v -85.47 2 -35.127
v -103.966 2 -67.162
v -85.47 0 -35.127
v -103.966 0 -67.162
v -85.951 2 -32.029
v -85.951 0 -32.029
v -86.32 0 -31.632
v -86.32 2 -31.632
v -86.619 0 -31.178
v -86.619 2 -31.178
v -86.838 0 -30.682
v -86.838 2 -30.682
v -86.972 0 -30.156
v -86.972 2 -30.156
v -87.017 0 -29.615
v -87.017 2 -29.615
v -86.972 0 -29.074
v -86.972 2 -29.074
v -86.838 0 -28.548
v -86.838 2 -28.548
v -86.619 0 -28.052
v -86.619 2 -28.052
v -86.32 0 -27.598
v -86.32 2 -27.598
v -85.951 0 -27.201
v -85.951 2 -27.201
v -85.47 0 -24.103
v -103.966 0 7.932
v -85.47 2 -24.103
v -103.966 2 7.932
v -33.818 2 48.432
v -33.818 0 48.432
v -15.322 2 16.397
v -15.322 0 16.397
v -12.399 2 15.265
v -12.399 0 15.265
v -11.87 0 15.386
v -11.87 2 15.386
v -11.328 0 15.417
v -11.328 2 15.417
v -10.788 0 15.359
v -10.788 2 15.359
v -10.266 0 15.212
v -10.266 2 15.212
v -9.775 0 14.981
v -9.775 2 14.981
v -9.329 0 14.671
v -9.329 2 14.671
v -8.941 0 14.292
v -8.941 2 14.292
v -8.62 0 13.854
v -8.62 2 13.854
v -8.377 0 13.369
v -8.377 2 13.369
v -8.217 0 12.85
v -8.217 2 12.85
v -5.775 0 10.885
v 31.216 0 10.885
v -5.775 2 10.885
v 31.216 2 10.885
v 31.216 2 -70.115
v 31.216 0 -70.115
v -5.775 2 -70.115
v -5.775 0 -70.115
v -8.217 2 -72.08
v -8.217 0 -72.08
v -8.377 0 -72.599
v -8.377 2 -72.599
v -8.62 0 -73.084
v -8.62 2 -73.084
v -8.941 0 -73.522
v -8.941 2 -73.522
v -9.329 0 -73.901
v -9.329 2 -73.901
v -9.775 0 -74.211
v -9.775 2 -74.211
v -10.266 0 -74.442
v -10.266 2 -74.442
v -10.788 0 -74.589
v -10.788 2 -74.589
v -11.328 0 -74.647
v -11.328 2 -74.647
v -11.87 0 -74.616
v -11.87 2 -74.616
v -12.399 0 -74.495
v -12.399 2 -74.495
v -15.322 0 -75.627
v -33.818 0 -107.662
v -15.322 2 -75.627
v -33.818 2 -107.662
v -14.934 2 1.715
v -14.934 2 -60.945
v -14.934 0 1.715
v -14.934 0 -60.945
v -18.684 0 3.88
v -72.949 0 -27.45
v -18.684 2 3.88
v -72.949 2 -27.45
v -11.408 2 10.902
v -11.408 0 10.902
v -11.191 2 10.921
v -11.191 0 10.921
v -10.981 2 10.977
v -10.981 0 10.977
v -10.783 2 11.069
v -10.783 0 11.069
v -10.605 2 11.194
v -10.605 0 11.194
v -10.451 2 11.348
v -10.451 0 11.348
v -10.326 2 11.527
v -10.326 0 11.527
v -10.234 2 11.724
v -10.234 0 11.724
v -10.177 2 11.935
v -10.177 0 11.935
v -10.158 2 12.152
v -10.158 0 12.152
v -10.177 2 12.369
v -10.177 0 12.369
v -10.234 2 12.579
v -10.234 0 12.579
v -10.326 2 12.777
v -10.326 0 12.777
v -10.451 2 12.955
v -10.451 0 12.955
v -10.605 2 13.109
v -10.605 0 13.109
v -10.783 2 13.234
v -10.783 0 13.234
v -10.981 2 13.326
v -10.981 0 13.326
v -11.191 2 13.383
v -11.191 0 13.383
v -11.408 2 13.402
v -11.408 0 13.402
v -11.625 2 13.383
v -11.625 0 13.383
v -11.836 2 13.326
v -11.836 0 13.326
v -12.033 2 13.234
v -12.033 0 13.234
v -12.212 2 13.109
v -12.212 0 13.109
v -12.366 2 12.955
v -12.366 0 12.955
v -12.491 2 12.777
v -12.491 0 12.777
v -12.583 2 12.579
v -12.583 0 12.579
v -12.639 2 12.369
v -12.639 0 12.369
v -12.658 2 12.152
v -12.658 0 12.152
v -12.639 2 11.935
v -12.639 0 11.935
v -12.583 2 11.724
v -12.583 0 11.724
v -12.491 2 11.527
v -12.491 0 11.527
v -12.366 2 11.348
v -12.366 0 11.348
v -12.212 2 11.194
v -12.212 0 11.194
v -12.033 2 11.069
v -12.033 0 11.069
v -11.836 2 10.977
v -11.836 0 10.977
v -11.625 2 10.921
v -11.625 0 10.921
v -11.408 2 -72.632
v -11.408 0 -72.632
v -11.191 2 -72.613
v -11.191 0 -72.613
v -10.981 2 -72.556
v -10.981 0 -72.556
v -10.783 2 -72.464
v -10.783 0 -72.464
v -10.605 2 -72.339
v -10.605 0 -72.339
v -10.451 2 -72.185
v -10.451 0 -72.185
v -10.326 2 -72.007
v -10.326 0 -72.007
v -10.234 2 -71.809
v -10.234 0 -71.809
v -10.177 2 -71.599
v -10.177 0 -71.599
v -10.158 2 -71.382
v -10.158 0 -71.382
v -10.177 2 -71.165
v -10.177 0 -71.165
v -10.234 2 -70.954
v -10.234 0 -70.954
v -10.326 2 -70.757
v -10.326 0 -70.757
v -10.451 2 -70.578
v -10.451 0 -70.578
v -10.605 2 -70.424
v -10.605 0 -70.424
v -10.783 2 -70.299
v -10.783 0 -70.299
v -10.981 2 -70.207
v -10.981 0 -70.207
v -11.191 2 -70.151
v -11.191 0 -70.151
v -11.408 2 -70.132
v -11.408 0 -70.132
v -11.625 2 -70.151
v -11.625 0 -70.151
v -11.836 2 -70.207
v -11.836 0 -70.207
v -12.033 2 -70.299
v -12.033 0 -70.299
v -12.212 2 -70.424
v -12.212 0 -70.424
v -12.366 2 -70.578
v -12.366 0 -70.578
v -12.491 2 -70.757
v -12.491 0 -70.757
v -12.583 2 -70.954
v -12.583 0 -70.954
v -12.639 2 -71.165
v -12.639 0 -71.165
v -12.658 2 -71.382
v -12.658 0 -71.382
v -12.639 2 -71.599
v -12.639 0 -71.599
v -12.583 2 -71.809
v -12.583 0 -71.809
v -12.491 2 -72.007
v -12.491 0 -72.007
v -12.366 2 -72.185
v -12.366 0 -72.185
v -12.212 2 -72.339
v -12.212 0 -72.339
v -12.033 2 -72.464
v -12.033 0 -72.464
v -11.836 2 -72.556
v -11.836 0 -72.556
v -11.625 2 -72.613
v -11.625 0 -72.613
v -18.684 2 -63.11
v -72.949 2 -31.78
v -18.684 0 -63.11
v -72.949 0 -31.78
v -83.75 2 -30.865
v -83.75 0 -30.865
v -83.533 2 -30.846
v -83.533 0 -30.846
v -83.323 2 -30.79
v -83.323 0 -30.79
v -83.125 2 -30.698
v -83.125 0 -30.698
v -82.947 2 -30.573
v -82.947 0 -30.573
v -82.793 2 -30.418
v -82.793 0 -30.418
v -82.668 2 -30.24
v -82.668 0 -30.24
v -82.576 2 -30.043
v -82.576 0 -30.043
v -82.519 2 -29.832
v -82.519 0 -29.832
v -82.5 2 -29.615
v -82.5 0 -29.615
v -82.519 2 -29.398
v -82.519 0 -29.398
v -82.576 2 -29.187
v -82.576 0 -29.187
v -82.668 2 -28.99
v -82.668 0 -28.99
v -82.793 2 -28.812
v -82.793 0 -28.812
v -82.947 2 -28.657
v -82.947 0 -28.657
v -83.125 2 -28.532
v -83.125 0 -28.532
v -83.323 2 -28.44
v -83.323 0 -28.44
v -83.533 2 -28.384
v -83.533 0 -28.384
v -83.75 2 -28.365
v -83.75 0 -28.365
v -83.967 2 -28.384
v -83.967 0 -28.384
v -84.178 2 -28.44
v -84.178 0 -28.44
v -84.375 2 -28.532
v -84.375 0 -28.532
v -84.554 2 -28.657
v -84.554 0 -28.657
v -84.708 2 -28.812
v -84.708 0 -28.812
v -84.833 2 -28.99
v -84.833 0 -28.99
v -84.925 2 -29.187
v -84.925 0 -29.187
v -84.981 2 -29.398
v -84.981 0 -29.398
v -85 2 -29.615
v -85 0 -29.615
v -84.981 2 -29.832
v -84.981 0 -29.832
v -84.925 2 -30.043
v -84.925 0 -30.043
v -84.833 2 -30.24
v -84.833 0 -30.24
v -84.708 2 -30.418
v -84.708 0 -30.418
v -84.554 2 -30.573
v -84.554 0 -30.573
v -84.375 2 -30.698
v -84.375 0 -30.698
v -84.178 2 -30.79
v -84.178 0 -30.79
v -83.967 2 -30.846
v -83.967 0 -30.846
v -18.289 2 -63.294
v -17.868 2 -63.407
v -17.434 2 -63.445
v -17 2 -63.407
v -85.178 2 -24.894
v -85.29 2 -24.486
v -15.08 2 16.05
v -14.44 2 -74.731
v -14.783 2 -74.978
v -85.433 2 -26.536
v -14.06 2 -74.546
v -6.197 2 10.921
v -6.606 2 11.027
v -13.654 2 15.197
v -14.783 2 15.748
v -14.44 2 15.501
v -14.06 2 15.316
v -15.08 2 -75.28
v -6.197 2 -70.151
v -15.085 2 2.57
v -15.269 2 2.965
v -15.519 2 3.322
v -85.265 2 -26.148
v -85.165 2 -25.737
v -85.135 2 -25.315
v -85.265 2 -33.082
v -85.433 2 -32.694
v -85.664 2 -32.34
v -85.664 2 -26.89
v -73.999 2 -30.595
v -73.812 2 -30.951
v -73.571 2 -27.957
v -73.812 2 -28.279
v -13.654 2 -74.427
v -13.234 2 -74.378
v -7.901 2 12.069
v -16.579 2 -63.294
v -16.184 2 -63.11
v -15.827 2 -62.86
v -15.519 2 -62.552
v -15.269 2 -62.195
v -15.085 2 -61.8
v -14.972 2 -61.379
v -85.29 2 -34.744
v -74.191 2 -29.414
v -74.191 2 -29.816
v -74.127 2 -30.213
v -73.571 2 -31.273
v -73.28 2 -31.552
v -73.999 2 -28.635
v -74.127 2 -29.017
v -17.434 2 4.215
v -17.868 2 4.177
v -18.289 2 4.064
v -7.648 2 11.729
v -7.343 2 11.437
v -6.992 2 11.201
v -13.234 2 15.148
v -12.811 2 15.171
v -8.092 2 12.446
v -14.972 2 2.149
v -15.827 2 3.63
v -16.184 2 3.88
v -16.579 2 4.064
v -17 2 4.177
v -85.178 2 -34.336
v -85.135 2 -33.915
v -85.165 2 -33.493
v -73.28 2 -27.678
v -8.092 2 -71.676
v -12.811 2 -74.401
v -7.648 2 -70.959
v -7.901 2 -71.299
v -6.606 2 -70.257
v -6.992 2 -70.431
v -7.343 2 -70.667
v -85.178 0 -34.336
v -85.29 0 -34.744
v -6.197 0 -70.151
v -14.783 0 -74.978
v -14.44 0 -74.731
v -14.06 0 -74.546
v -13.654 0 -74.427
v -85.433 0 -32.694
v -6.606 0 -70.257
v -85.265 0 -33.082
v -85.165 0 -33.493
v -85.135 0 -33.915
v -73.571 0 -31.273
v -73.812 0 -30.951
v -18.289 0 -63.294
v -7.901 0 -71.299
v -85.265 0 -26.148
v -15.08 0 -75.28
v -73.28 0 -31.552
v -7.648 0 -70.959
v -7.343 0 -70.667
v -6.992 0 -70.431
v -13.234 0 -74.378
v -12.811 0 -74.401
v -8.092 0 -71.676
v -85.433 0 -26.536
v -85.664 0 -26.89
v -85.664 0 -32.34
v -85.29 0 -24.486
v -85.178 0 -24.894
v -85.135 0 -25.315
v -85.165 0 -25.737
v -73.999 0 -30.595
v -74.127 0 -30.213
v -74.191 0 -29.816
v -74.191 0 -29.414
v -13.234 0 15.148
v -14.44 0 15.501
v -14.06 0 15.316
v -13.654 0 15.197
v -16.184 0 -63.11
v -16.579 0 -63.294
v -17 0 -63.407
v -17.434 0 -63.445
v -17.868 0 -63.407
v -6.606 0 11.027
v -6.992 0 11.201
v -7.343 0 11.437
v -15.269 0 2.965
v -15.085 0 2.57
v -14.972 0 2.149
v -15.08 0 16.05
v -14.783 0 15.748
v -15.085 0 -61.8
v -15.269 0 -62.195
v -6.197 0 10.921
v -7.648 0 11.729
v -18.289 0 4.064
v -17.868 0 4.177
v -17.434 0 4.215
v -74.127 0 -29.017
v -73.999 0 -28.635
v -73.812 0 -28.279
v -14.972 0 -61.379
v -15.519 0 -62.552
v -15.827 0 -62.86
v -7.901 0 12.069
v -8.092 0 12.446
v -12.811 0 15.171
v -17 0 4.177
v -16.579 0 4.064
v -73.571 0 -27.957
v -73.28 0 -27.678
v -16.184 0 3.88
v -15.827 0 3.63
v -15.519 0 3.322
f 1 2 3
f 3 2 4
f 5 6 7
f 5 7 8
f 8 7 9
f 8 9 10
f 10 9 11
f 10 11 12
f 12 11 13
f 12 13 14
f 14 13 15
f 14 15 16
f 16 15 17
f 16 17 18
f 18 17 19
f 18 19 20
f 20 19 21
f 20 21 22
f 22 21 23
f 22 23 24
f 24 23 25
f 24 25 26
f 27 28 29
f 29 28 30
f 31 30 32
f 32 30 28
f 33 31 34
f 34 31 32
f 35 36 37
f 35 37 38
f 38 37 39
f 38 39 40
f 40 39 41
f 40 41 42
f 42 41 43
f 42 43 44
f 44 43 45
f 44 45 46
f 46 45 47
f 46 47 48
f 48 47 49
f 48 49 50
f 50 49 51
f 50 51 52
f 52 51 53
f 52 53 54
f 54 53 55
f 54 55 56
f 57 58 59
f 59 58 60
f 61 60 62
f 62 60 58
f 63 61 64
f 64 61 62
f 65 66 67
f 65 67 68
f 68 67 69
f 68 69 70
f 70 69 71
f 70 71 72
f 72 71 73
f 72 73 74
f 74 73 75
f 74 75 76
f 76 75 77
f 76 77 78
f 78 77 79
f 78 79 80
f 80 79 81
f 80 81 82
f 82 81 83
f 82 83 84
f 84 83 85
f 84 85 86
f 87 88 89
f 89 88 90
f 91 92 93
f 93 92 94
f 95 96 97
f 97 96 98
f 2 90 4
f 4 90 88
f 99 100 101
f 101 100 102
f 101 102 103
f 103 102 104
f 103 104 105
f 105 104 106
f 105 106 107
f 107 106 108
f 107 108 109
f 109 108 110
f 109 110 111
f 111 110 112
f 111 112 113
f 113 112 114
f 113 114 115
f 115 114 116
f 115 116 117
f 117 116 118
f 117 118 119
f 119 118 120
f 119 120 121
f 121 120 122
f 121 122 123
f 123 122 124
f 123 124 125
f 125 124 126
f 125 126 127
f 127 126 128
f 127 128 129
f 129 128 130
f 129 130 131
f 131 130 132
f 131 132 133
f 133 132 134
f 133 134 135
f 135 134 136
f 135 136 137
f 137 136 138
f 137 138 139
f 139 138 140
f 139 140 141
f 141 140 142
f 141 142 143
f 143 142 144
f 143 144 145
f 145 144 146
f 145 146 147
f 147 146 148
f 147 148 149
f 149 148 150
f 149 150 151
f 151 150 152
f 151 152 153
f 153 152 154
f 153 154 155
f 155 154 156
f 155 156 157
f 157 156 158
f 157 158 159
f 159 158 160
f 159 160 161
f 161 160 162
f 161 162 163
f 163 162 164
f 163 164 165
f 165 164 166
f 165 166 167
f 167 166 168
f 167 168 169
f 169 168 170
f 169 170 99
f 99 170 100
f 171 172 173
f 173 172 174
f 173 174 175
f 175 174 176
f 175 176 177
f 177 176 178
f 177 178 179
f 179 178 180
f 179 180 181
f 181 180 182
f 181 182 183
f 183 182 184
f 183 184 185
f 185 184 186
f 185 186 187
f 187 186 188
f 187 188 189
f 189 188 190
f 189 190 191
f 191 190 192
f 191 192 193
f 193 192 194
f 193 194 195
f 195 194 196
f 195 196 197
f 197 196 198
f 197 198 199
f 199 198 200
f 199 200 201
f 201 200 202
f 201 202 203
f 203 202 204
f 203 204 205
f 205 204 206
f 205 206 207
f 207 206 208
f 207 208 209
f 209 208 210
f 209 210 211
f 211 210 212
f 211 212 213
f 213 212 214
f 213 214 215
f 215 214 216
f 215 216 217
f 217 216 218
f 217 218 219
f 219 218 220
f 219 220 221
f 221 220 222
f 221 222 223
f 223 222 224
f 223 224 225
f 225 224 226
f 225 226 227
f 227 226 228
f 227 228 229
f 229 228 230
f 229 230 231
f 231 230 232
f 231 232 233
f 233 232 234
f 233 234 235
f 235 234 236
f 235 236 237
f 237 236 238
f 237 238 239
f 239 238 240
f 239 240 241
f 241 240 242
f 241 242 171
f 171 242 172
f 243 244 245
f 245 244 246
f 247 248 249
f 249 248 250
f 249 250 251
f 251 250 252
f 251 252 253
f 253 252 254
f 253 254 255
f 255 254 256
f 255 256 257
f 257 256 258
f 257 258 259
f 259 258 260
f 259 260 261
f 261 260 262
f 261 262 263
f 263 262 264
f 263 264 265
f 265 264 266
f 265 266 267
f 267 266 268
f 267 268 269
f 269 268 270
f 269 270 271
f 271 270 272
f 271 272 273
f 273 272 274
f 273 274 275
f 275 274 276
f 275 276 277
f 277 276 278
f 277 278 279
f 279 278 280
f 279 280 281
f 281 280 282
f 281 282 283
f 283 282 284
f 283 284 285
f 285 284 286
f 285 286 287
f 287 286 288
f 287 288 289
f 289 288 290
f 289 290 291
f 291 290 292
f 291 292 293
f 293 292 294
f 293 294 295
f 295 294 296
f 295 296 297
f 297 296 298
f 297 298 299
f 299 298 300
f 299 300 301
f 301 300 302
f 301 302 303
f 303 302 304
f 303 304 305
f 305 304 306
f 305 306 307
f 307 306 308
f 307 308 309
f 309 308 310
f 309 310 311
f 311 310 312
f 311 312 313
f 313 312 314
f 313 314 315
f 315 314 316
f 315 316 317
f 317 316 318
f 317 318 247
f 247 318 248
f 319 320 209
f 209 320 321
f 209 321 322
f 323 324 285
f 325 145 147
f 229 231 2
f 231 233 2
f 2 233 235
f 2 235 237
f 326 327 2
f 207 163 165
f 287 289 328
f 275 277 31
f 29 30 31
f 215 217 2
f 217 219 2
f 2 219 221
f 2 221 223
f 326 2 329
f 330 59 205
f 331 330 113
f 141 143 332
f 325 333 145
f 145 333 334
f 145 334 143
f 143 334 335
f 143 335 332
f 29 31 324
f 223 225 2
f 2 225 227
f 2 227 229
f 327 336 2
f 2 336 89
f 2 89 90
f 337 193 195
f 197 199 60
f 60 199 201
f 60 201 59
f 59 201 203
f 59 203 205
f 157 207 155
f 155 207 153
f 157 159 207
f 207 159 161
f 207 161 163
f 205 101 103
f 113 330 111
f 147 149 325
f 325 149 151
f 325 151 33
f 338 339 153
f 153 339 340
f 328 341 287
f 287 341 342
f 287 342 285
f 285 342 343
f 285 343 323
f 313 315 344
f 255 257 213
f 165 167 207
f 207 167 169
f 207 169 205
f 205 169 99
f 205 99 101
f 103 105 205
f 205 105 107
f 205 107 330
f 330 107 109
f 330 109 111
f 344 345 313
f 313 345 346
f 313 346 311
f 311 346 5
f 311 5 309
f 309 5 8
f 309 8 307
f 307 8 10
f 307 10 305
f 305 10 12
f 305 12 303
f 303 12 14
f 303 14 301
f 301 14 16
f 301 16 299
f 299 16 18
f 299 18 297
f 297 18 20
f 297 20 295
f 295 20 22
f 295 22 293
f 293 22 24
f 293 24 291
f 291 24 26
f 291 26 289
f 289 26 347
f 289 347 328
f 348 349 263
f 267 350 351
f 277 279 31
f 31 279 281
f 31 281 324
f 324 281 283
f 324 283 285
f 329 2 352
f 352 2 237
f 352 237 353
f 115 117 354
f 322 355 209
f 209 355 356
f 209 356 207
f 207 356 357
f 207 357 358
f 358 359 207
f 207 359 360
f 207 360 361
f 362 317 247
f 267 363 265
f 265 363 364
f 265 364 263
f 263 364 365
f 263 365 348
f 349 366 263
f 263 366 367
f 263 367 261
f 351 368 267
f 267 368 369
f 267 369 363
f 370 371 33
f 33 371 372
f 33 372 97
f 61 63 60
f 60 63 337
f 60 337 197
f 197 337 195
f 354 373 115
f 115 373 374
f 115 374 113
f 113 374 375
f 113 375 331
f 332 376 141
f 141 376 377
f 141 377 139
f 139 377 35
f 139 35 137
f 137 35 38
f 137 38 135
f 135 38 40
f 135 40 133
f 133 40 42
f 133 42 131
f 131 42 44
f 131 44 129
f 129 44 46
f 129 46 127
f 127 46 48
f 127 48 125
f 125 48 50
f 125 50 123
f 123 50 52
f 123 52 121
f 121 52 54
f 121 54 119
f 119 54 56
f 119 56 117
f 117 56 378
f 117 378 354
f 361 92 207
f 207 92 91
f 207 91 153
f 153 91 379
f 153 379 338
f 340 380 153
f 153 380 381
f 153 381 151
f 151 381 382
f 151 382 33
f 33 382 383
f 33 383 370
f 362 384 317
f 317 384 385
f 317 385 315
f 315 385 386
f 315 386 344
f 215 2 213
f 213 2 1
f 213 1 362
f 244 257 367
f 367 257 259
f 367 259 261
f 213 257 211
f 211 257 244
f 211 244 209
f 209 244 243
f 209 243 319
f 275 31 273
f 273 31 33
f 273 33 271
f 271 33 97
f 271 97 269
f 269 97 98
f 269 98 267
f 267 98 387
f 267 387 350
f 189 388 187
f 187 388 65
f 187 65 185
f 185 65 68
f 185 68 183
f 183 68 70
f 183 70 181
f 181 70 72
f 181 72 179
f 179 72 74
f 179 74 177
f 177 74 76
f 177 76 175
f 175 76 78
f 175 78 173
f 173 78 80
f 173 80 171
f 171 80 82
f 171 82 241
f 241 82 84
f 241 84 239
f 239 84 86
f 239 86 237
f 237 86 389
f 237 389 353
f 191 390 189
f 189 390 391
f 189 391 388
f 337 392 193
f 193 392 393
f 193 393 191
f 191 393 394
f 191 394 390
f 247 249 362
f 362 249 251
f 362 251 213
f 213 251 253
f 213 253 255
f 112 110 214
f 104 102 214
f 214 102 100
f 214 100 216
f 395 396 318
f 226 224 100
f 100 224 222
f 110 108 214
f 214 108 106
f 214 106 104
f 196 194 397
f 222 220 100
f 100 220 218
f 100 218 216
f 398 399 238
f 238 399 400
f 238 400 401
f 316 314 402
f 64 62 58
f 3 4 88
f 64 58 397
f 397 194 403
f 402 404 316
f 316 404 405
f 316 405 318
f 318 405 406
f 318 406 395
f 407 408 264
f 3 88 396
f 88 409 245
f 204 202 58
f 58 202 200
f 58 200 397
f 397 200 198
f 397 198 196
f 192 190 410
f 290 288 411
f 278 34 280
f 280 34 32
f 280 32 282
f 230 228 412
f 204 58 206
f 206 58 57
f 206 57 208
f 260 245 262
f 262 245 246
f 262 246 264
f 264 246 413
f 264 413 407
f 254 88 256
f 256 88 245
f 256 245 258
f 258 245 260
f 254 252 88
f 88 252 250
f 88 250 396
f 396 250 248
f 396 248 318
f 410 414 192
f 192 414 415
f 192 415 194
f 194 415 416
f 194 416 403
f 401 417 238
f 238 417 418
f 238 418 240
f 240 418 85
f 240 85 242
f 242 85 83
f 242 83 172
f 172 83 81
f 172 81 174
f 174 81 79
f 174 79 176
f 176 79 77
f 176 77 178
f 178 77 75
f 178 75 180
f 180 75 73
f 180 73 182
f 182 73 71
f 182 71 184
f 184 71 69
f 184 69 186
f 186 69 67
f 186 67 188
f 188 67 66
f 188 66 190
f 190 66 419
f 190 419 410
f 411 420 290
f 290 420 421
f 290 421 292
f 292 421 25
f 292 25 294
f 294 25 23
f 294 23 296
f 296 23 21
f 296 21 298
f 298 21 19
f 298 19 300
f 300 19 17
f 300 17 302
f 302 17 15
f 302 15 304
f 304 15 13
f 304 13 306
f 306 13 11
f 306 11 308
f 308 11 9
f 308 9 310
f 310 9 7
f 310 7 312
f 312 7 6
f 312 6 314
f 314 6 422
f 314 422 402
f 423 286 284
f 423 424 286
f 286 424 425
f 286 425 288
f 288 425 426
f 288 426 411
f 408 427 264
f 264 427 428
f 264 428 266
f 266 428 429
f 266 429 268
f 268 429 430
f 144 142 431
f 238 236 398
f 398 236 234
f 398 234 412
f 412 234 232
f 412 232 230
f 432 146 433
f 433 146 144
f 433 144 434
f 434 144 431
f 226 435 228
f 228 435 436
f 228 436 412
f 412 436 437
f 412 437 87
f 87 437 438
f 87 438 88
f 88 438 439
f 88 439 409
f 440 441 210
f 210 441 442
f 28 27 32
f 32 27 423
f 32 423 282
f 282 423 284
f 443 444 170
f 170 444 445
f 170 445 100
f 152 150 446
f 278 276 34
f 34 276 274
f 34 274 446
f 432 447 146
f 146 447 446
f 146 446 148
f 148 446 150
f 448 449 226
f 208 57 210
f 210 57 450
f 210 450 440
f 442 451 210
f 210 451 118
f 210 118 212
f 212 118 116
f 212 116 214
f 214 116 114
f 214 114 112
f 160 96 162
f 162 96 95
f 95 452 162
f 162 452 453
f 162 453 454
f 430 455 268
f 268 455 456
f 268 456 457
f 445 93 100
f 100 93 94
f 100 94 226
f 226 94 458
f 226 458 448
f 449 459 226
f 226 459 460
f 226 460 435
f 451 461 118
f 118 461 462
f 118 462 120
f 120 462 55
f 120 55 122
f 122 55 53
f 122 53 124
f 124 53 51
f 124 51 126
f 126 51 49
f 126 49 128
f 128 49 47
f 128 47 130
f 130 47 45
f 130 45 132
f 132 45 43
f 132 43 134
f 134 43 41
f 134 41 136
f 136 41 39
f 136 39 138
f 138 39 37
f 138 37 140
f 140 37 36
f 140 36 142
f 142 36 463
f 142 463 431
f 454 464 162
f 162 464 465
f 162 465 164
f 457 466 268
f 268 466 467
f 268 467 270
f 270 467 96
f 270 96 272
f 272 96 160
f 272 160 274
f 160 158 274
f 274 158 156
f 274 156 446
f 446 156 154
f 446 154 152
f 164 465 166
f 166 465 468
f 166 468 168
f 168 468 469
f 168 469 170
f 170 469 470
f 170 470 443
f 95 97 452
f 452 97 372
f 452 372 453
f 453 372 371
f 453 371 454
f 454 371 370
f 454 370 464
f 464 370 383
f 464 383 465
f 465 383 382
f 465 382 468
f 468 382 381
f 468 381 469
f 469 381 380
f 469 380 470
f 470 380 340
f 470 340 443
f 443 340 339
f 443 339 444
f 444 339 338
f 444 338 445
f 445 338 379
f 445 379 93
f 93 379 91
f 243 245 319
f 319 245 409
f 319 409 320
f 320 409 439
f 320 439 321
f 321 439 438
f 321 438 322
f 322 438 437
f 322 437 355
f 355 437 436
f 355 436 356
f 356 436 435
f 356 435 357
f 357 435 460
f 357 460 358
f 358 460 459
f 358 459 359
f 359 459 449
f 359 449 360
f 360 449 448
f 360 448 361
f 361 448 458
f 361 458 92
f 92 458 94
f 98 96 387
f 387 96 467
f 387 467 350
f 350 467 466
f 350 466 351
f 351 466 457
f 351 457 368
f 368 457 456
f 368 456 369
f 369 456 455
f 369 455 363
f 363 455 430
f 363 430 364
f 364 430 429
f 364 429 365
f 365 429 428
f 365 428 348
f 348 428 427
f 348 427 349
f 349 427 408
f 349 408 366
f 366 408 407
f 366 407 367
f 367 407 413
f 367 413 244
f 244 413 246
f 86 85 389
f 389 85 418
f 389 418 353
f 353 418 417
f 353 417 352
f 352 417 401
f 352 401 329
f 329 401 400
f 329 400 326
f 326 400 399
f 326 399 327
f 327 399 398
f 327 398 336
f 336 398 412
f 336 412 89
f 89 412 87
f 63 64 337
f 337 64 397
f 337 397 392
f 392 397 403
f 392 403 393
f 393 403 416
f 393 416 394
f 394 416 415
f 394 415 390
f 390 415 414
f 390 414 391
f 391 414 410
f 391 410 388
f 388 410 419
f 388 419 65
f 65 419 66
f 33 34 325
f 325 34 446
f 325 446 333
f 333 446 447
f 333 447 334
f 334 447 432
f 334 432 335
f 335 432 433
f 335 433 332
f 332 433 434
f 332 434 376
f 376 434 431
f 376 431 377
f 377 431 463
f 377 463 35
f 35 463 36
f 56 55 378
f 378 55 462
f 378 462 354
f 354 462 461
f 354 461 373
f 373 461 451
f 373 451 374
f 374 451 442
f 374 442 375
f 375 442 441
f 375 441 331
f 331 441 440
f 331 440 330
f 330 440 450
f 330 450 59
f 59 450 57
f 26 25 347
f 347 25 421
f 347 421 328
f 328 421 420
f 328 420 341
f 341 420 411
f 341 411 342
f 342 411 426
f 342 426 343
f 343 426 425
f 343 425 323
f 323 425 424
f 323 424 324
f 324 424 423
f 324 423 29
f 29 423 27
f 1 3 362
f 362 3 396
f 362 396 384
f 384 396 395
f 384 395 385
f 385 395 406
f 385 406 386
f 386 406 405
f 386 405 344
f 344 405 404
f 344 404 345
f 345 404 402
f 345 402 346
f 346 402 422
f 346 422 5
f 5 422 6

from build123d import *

# Parameters (mm, degrees)
SKETCH1_R           = 1.25
BOSS_EXTRUDE1_DEPTH = 2
FILLET1_R           = 2.5


with BuildPart() as part:
    # Sketch1 → Boss-Extrude1 (new body)
    with BuildSketch(Plane(origin=(0, 0, 0), x_dir=(1, 0, 0), z_dir=(0, 1, 0))):
        with BuildLine():
            Line((-103.965757813, 67.162425071), (-33.817700106, 107.662425071))
            Line((-33.817700106, 107.662425071), (-14.010882201, 73.356010123))
            ThreePointArc((-14.010882201, 73.356010123), (-9.775048525, 74.210673935), (-8.39729226, 70.115002459))
            Line((-8.39729226, 70.115002459), (31.216343551, 70.115002459))
            Line((31.216343551, 70.115002459), (31.216343551, -10.884997541))
            Line((31.216343551, -10.884997541), (-8.39729226, -10.884997541))
            ThreePointArc((-8.39729226, -10.884997541), (-9.775048525, -14.980669016), (-14.010882201, -14.126005204))
            Line((-14.010882201, -14.126005204), (-33.817700106, -48.432420153))
            Line((-33.817700106, -48.432420153), (-103.965757813, -7.932420153))
            Line((-103.965757813, -7.932420153), (-84.158939907, 26.373994796))
            ThreePointArc((-84.158939907, 26.373994796), (-87.017017318, 29.615002459), (-84.158939907, 32.856010123))
            Line((-84.158939907, 32.856010123), (-103.965757813, 67.162425071))
        make_face()
        with Locations(Location((-83.75035682, 29.615002459, 0), (0, 0, 270))):
            Circle(SKETCH1_R, mode=Mode.SUBTRACT)
        with Locations(Location((-11.408378774, 71.381662958, 0), (0, 0, 270))):
            Circle(SKETCH1_R, mode=Mode.SUBTRACT)
        with Locations(Location((-11.408378774, -12.151658039, 0), (0, 0, 270))):
            Circle(SKETCH1_R, mode=Mode.SUBTRACT)
        Polygon((-76.69928593, 29.615002459), (-14.933914219, 65.275256443), (-14.933914219, -6.045251524), align=None, mode=Mode.SUBTRACT)
    extrude(amount=BOSS_EXTRUDE1_DEPTH)

    # Fillet1
    fillet1_edges = [part.edges().sort_by_distance(p)[0] for p in [
        (-14.010882201, 1, -73.356010123),
        (-8.39729226, 1, -70.115002459),
        (-8.39729226, 1, 10.884997541),
        (-14.010882201, 1, 14.126005204),
        (-84.158939907, 1, -26.373994796),
        (-84.158939907, 1, -32.856010123),
        (-14.933914219, 1, -65.275256443),
        (-76.69928593, 1, -29.615002459),
        (-14.933914219, 1, 6.045251524),
    ]]
    fillet(fillet1_edges, radius=FILLET1_R)


solid = part.part
